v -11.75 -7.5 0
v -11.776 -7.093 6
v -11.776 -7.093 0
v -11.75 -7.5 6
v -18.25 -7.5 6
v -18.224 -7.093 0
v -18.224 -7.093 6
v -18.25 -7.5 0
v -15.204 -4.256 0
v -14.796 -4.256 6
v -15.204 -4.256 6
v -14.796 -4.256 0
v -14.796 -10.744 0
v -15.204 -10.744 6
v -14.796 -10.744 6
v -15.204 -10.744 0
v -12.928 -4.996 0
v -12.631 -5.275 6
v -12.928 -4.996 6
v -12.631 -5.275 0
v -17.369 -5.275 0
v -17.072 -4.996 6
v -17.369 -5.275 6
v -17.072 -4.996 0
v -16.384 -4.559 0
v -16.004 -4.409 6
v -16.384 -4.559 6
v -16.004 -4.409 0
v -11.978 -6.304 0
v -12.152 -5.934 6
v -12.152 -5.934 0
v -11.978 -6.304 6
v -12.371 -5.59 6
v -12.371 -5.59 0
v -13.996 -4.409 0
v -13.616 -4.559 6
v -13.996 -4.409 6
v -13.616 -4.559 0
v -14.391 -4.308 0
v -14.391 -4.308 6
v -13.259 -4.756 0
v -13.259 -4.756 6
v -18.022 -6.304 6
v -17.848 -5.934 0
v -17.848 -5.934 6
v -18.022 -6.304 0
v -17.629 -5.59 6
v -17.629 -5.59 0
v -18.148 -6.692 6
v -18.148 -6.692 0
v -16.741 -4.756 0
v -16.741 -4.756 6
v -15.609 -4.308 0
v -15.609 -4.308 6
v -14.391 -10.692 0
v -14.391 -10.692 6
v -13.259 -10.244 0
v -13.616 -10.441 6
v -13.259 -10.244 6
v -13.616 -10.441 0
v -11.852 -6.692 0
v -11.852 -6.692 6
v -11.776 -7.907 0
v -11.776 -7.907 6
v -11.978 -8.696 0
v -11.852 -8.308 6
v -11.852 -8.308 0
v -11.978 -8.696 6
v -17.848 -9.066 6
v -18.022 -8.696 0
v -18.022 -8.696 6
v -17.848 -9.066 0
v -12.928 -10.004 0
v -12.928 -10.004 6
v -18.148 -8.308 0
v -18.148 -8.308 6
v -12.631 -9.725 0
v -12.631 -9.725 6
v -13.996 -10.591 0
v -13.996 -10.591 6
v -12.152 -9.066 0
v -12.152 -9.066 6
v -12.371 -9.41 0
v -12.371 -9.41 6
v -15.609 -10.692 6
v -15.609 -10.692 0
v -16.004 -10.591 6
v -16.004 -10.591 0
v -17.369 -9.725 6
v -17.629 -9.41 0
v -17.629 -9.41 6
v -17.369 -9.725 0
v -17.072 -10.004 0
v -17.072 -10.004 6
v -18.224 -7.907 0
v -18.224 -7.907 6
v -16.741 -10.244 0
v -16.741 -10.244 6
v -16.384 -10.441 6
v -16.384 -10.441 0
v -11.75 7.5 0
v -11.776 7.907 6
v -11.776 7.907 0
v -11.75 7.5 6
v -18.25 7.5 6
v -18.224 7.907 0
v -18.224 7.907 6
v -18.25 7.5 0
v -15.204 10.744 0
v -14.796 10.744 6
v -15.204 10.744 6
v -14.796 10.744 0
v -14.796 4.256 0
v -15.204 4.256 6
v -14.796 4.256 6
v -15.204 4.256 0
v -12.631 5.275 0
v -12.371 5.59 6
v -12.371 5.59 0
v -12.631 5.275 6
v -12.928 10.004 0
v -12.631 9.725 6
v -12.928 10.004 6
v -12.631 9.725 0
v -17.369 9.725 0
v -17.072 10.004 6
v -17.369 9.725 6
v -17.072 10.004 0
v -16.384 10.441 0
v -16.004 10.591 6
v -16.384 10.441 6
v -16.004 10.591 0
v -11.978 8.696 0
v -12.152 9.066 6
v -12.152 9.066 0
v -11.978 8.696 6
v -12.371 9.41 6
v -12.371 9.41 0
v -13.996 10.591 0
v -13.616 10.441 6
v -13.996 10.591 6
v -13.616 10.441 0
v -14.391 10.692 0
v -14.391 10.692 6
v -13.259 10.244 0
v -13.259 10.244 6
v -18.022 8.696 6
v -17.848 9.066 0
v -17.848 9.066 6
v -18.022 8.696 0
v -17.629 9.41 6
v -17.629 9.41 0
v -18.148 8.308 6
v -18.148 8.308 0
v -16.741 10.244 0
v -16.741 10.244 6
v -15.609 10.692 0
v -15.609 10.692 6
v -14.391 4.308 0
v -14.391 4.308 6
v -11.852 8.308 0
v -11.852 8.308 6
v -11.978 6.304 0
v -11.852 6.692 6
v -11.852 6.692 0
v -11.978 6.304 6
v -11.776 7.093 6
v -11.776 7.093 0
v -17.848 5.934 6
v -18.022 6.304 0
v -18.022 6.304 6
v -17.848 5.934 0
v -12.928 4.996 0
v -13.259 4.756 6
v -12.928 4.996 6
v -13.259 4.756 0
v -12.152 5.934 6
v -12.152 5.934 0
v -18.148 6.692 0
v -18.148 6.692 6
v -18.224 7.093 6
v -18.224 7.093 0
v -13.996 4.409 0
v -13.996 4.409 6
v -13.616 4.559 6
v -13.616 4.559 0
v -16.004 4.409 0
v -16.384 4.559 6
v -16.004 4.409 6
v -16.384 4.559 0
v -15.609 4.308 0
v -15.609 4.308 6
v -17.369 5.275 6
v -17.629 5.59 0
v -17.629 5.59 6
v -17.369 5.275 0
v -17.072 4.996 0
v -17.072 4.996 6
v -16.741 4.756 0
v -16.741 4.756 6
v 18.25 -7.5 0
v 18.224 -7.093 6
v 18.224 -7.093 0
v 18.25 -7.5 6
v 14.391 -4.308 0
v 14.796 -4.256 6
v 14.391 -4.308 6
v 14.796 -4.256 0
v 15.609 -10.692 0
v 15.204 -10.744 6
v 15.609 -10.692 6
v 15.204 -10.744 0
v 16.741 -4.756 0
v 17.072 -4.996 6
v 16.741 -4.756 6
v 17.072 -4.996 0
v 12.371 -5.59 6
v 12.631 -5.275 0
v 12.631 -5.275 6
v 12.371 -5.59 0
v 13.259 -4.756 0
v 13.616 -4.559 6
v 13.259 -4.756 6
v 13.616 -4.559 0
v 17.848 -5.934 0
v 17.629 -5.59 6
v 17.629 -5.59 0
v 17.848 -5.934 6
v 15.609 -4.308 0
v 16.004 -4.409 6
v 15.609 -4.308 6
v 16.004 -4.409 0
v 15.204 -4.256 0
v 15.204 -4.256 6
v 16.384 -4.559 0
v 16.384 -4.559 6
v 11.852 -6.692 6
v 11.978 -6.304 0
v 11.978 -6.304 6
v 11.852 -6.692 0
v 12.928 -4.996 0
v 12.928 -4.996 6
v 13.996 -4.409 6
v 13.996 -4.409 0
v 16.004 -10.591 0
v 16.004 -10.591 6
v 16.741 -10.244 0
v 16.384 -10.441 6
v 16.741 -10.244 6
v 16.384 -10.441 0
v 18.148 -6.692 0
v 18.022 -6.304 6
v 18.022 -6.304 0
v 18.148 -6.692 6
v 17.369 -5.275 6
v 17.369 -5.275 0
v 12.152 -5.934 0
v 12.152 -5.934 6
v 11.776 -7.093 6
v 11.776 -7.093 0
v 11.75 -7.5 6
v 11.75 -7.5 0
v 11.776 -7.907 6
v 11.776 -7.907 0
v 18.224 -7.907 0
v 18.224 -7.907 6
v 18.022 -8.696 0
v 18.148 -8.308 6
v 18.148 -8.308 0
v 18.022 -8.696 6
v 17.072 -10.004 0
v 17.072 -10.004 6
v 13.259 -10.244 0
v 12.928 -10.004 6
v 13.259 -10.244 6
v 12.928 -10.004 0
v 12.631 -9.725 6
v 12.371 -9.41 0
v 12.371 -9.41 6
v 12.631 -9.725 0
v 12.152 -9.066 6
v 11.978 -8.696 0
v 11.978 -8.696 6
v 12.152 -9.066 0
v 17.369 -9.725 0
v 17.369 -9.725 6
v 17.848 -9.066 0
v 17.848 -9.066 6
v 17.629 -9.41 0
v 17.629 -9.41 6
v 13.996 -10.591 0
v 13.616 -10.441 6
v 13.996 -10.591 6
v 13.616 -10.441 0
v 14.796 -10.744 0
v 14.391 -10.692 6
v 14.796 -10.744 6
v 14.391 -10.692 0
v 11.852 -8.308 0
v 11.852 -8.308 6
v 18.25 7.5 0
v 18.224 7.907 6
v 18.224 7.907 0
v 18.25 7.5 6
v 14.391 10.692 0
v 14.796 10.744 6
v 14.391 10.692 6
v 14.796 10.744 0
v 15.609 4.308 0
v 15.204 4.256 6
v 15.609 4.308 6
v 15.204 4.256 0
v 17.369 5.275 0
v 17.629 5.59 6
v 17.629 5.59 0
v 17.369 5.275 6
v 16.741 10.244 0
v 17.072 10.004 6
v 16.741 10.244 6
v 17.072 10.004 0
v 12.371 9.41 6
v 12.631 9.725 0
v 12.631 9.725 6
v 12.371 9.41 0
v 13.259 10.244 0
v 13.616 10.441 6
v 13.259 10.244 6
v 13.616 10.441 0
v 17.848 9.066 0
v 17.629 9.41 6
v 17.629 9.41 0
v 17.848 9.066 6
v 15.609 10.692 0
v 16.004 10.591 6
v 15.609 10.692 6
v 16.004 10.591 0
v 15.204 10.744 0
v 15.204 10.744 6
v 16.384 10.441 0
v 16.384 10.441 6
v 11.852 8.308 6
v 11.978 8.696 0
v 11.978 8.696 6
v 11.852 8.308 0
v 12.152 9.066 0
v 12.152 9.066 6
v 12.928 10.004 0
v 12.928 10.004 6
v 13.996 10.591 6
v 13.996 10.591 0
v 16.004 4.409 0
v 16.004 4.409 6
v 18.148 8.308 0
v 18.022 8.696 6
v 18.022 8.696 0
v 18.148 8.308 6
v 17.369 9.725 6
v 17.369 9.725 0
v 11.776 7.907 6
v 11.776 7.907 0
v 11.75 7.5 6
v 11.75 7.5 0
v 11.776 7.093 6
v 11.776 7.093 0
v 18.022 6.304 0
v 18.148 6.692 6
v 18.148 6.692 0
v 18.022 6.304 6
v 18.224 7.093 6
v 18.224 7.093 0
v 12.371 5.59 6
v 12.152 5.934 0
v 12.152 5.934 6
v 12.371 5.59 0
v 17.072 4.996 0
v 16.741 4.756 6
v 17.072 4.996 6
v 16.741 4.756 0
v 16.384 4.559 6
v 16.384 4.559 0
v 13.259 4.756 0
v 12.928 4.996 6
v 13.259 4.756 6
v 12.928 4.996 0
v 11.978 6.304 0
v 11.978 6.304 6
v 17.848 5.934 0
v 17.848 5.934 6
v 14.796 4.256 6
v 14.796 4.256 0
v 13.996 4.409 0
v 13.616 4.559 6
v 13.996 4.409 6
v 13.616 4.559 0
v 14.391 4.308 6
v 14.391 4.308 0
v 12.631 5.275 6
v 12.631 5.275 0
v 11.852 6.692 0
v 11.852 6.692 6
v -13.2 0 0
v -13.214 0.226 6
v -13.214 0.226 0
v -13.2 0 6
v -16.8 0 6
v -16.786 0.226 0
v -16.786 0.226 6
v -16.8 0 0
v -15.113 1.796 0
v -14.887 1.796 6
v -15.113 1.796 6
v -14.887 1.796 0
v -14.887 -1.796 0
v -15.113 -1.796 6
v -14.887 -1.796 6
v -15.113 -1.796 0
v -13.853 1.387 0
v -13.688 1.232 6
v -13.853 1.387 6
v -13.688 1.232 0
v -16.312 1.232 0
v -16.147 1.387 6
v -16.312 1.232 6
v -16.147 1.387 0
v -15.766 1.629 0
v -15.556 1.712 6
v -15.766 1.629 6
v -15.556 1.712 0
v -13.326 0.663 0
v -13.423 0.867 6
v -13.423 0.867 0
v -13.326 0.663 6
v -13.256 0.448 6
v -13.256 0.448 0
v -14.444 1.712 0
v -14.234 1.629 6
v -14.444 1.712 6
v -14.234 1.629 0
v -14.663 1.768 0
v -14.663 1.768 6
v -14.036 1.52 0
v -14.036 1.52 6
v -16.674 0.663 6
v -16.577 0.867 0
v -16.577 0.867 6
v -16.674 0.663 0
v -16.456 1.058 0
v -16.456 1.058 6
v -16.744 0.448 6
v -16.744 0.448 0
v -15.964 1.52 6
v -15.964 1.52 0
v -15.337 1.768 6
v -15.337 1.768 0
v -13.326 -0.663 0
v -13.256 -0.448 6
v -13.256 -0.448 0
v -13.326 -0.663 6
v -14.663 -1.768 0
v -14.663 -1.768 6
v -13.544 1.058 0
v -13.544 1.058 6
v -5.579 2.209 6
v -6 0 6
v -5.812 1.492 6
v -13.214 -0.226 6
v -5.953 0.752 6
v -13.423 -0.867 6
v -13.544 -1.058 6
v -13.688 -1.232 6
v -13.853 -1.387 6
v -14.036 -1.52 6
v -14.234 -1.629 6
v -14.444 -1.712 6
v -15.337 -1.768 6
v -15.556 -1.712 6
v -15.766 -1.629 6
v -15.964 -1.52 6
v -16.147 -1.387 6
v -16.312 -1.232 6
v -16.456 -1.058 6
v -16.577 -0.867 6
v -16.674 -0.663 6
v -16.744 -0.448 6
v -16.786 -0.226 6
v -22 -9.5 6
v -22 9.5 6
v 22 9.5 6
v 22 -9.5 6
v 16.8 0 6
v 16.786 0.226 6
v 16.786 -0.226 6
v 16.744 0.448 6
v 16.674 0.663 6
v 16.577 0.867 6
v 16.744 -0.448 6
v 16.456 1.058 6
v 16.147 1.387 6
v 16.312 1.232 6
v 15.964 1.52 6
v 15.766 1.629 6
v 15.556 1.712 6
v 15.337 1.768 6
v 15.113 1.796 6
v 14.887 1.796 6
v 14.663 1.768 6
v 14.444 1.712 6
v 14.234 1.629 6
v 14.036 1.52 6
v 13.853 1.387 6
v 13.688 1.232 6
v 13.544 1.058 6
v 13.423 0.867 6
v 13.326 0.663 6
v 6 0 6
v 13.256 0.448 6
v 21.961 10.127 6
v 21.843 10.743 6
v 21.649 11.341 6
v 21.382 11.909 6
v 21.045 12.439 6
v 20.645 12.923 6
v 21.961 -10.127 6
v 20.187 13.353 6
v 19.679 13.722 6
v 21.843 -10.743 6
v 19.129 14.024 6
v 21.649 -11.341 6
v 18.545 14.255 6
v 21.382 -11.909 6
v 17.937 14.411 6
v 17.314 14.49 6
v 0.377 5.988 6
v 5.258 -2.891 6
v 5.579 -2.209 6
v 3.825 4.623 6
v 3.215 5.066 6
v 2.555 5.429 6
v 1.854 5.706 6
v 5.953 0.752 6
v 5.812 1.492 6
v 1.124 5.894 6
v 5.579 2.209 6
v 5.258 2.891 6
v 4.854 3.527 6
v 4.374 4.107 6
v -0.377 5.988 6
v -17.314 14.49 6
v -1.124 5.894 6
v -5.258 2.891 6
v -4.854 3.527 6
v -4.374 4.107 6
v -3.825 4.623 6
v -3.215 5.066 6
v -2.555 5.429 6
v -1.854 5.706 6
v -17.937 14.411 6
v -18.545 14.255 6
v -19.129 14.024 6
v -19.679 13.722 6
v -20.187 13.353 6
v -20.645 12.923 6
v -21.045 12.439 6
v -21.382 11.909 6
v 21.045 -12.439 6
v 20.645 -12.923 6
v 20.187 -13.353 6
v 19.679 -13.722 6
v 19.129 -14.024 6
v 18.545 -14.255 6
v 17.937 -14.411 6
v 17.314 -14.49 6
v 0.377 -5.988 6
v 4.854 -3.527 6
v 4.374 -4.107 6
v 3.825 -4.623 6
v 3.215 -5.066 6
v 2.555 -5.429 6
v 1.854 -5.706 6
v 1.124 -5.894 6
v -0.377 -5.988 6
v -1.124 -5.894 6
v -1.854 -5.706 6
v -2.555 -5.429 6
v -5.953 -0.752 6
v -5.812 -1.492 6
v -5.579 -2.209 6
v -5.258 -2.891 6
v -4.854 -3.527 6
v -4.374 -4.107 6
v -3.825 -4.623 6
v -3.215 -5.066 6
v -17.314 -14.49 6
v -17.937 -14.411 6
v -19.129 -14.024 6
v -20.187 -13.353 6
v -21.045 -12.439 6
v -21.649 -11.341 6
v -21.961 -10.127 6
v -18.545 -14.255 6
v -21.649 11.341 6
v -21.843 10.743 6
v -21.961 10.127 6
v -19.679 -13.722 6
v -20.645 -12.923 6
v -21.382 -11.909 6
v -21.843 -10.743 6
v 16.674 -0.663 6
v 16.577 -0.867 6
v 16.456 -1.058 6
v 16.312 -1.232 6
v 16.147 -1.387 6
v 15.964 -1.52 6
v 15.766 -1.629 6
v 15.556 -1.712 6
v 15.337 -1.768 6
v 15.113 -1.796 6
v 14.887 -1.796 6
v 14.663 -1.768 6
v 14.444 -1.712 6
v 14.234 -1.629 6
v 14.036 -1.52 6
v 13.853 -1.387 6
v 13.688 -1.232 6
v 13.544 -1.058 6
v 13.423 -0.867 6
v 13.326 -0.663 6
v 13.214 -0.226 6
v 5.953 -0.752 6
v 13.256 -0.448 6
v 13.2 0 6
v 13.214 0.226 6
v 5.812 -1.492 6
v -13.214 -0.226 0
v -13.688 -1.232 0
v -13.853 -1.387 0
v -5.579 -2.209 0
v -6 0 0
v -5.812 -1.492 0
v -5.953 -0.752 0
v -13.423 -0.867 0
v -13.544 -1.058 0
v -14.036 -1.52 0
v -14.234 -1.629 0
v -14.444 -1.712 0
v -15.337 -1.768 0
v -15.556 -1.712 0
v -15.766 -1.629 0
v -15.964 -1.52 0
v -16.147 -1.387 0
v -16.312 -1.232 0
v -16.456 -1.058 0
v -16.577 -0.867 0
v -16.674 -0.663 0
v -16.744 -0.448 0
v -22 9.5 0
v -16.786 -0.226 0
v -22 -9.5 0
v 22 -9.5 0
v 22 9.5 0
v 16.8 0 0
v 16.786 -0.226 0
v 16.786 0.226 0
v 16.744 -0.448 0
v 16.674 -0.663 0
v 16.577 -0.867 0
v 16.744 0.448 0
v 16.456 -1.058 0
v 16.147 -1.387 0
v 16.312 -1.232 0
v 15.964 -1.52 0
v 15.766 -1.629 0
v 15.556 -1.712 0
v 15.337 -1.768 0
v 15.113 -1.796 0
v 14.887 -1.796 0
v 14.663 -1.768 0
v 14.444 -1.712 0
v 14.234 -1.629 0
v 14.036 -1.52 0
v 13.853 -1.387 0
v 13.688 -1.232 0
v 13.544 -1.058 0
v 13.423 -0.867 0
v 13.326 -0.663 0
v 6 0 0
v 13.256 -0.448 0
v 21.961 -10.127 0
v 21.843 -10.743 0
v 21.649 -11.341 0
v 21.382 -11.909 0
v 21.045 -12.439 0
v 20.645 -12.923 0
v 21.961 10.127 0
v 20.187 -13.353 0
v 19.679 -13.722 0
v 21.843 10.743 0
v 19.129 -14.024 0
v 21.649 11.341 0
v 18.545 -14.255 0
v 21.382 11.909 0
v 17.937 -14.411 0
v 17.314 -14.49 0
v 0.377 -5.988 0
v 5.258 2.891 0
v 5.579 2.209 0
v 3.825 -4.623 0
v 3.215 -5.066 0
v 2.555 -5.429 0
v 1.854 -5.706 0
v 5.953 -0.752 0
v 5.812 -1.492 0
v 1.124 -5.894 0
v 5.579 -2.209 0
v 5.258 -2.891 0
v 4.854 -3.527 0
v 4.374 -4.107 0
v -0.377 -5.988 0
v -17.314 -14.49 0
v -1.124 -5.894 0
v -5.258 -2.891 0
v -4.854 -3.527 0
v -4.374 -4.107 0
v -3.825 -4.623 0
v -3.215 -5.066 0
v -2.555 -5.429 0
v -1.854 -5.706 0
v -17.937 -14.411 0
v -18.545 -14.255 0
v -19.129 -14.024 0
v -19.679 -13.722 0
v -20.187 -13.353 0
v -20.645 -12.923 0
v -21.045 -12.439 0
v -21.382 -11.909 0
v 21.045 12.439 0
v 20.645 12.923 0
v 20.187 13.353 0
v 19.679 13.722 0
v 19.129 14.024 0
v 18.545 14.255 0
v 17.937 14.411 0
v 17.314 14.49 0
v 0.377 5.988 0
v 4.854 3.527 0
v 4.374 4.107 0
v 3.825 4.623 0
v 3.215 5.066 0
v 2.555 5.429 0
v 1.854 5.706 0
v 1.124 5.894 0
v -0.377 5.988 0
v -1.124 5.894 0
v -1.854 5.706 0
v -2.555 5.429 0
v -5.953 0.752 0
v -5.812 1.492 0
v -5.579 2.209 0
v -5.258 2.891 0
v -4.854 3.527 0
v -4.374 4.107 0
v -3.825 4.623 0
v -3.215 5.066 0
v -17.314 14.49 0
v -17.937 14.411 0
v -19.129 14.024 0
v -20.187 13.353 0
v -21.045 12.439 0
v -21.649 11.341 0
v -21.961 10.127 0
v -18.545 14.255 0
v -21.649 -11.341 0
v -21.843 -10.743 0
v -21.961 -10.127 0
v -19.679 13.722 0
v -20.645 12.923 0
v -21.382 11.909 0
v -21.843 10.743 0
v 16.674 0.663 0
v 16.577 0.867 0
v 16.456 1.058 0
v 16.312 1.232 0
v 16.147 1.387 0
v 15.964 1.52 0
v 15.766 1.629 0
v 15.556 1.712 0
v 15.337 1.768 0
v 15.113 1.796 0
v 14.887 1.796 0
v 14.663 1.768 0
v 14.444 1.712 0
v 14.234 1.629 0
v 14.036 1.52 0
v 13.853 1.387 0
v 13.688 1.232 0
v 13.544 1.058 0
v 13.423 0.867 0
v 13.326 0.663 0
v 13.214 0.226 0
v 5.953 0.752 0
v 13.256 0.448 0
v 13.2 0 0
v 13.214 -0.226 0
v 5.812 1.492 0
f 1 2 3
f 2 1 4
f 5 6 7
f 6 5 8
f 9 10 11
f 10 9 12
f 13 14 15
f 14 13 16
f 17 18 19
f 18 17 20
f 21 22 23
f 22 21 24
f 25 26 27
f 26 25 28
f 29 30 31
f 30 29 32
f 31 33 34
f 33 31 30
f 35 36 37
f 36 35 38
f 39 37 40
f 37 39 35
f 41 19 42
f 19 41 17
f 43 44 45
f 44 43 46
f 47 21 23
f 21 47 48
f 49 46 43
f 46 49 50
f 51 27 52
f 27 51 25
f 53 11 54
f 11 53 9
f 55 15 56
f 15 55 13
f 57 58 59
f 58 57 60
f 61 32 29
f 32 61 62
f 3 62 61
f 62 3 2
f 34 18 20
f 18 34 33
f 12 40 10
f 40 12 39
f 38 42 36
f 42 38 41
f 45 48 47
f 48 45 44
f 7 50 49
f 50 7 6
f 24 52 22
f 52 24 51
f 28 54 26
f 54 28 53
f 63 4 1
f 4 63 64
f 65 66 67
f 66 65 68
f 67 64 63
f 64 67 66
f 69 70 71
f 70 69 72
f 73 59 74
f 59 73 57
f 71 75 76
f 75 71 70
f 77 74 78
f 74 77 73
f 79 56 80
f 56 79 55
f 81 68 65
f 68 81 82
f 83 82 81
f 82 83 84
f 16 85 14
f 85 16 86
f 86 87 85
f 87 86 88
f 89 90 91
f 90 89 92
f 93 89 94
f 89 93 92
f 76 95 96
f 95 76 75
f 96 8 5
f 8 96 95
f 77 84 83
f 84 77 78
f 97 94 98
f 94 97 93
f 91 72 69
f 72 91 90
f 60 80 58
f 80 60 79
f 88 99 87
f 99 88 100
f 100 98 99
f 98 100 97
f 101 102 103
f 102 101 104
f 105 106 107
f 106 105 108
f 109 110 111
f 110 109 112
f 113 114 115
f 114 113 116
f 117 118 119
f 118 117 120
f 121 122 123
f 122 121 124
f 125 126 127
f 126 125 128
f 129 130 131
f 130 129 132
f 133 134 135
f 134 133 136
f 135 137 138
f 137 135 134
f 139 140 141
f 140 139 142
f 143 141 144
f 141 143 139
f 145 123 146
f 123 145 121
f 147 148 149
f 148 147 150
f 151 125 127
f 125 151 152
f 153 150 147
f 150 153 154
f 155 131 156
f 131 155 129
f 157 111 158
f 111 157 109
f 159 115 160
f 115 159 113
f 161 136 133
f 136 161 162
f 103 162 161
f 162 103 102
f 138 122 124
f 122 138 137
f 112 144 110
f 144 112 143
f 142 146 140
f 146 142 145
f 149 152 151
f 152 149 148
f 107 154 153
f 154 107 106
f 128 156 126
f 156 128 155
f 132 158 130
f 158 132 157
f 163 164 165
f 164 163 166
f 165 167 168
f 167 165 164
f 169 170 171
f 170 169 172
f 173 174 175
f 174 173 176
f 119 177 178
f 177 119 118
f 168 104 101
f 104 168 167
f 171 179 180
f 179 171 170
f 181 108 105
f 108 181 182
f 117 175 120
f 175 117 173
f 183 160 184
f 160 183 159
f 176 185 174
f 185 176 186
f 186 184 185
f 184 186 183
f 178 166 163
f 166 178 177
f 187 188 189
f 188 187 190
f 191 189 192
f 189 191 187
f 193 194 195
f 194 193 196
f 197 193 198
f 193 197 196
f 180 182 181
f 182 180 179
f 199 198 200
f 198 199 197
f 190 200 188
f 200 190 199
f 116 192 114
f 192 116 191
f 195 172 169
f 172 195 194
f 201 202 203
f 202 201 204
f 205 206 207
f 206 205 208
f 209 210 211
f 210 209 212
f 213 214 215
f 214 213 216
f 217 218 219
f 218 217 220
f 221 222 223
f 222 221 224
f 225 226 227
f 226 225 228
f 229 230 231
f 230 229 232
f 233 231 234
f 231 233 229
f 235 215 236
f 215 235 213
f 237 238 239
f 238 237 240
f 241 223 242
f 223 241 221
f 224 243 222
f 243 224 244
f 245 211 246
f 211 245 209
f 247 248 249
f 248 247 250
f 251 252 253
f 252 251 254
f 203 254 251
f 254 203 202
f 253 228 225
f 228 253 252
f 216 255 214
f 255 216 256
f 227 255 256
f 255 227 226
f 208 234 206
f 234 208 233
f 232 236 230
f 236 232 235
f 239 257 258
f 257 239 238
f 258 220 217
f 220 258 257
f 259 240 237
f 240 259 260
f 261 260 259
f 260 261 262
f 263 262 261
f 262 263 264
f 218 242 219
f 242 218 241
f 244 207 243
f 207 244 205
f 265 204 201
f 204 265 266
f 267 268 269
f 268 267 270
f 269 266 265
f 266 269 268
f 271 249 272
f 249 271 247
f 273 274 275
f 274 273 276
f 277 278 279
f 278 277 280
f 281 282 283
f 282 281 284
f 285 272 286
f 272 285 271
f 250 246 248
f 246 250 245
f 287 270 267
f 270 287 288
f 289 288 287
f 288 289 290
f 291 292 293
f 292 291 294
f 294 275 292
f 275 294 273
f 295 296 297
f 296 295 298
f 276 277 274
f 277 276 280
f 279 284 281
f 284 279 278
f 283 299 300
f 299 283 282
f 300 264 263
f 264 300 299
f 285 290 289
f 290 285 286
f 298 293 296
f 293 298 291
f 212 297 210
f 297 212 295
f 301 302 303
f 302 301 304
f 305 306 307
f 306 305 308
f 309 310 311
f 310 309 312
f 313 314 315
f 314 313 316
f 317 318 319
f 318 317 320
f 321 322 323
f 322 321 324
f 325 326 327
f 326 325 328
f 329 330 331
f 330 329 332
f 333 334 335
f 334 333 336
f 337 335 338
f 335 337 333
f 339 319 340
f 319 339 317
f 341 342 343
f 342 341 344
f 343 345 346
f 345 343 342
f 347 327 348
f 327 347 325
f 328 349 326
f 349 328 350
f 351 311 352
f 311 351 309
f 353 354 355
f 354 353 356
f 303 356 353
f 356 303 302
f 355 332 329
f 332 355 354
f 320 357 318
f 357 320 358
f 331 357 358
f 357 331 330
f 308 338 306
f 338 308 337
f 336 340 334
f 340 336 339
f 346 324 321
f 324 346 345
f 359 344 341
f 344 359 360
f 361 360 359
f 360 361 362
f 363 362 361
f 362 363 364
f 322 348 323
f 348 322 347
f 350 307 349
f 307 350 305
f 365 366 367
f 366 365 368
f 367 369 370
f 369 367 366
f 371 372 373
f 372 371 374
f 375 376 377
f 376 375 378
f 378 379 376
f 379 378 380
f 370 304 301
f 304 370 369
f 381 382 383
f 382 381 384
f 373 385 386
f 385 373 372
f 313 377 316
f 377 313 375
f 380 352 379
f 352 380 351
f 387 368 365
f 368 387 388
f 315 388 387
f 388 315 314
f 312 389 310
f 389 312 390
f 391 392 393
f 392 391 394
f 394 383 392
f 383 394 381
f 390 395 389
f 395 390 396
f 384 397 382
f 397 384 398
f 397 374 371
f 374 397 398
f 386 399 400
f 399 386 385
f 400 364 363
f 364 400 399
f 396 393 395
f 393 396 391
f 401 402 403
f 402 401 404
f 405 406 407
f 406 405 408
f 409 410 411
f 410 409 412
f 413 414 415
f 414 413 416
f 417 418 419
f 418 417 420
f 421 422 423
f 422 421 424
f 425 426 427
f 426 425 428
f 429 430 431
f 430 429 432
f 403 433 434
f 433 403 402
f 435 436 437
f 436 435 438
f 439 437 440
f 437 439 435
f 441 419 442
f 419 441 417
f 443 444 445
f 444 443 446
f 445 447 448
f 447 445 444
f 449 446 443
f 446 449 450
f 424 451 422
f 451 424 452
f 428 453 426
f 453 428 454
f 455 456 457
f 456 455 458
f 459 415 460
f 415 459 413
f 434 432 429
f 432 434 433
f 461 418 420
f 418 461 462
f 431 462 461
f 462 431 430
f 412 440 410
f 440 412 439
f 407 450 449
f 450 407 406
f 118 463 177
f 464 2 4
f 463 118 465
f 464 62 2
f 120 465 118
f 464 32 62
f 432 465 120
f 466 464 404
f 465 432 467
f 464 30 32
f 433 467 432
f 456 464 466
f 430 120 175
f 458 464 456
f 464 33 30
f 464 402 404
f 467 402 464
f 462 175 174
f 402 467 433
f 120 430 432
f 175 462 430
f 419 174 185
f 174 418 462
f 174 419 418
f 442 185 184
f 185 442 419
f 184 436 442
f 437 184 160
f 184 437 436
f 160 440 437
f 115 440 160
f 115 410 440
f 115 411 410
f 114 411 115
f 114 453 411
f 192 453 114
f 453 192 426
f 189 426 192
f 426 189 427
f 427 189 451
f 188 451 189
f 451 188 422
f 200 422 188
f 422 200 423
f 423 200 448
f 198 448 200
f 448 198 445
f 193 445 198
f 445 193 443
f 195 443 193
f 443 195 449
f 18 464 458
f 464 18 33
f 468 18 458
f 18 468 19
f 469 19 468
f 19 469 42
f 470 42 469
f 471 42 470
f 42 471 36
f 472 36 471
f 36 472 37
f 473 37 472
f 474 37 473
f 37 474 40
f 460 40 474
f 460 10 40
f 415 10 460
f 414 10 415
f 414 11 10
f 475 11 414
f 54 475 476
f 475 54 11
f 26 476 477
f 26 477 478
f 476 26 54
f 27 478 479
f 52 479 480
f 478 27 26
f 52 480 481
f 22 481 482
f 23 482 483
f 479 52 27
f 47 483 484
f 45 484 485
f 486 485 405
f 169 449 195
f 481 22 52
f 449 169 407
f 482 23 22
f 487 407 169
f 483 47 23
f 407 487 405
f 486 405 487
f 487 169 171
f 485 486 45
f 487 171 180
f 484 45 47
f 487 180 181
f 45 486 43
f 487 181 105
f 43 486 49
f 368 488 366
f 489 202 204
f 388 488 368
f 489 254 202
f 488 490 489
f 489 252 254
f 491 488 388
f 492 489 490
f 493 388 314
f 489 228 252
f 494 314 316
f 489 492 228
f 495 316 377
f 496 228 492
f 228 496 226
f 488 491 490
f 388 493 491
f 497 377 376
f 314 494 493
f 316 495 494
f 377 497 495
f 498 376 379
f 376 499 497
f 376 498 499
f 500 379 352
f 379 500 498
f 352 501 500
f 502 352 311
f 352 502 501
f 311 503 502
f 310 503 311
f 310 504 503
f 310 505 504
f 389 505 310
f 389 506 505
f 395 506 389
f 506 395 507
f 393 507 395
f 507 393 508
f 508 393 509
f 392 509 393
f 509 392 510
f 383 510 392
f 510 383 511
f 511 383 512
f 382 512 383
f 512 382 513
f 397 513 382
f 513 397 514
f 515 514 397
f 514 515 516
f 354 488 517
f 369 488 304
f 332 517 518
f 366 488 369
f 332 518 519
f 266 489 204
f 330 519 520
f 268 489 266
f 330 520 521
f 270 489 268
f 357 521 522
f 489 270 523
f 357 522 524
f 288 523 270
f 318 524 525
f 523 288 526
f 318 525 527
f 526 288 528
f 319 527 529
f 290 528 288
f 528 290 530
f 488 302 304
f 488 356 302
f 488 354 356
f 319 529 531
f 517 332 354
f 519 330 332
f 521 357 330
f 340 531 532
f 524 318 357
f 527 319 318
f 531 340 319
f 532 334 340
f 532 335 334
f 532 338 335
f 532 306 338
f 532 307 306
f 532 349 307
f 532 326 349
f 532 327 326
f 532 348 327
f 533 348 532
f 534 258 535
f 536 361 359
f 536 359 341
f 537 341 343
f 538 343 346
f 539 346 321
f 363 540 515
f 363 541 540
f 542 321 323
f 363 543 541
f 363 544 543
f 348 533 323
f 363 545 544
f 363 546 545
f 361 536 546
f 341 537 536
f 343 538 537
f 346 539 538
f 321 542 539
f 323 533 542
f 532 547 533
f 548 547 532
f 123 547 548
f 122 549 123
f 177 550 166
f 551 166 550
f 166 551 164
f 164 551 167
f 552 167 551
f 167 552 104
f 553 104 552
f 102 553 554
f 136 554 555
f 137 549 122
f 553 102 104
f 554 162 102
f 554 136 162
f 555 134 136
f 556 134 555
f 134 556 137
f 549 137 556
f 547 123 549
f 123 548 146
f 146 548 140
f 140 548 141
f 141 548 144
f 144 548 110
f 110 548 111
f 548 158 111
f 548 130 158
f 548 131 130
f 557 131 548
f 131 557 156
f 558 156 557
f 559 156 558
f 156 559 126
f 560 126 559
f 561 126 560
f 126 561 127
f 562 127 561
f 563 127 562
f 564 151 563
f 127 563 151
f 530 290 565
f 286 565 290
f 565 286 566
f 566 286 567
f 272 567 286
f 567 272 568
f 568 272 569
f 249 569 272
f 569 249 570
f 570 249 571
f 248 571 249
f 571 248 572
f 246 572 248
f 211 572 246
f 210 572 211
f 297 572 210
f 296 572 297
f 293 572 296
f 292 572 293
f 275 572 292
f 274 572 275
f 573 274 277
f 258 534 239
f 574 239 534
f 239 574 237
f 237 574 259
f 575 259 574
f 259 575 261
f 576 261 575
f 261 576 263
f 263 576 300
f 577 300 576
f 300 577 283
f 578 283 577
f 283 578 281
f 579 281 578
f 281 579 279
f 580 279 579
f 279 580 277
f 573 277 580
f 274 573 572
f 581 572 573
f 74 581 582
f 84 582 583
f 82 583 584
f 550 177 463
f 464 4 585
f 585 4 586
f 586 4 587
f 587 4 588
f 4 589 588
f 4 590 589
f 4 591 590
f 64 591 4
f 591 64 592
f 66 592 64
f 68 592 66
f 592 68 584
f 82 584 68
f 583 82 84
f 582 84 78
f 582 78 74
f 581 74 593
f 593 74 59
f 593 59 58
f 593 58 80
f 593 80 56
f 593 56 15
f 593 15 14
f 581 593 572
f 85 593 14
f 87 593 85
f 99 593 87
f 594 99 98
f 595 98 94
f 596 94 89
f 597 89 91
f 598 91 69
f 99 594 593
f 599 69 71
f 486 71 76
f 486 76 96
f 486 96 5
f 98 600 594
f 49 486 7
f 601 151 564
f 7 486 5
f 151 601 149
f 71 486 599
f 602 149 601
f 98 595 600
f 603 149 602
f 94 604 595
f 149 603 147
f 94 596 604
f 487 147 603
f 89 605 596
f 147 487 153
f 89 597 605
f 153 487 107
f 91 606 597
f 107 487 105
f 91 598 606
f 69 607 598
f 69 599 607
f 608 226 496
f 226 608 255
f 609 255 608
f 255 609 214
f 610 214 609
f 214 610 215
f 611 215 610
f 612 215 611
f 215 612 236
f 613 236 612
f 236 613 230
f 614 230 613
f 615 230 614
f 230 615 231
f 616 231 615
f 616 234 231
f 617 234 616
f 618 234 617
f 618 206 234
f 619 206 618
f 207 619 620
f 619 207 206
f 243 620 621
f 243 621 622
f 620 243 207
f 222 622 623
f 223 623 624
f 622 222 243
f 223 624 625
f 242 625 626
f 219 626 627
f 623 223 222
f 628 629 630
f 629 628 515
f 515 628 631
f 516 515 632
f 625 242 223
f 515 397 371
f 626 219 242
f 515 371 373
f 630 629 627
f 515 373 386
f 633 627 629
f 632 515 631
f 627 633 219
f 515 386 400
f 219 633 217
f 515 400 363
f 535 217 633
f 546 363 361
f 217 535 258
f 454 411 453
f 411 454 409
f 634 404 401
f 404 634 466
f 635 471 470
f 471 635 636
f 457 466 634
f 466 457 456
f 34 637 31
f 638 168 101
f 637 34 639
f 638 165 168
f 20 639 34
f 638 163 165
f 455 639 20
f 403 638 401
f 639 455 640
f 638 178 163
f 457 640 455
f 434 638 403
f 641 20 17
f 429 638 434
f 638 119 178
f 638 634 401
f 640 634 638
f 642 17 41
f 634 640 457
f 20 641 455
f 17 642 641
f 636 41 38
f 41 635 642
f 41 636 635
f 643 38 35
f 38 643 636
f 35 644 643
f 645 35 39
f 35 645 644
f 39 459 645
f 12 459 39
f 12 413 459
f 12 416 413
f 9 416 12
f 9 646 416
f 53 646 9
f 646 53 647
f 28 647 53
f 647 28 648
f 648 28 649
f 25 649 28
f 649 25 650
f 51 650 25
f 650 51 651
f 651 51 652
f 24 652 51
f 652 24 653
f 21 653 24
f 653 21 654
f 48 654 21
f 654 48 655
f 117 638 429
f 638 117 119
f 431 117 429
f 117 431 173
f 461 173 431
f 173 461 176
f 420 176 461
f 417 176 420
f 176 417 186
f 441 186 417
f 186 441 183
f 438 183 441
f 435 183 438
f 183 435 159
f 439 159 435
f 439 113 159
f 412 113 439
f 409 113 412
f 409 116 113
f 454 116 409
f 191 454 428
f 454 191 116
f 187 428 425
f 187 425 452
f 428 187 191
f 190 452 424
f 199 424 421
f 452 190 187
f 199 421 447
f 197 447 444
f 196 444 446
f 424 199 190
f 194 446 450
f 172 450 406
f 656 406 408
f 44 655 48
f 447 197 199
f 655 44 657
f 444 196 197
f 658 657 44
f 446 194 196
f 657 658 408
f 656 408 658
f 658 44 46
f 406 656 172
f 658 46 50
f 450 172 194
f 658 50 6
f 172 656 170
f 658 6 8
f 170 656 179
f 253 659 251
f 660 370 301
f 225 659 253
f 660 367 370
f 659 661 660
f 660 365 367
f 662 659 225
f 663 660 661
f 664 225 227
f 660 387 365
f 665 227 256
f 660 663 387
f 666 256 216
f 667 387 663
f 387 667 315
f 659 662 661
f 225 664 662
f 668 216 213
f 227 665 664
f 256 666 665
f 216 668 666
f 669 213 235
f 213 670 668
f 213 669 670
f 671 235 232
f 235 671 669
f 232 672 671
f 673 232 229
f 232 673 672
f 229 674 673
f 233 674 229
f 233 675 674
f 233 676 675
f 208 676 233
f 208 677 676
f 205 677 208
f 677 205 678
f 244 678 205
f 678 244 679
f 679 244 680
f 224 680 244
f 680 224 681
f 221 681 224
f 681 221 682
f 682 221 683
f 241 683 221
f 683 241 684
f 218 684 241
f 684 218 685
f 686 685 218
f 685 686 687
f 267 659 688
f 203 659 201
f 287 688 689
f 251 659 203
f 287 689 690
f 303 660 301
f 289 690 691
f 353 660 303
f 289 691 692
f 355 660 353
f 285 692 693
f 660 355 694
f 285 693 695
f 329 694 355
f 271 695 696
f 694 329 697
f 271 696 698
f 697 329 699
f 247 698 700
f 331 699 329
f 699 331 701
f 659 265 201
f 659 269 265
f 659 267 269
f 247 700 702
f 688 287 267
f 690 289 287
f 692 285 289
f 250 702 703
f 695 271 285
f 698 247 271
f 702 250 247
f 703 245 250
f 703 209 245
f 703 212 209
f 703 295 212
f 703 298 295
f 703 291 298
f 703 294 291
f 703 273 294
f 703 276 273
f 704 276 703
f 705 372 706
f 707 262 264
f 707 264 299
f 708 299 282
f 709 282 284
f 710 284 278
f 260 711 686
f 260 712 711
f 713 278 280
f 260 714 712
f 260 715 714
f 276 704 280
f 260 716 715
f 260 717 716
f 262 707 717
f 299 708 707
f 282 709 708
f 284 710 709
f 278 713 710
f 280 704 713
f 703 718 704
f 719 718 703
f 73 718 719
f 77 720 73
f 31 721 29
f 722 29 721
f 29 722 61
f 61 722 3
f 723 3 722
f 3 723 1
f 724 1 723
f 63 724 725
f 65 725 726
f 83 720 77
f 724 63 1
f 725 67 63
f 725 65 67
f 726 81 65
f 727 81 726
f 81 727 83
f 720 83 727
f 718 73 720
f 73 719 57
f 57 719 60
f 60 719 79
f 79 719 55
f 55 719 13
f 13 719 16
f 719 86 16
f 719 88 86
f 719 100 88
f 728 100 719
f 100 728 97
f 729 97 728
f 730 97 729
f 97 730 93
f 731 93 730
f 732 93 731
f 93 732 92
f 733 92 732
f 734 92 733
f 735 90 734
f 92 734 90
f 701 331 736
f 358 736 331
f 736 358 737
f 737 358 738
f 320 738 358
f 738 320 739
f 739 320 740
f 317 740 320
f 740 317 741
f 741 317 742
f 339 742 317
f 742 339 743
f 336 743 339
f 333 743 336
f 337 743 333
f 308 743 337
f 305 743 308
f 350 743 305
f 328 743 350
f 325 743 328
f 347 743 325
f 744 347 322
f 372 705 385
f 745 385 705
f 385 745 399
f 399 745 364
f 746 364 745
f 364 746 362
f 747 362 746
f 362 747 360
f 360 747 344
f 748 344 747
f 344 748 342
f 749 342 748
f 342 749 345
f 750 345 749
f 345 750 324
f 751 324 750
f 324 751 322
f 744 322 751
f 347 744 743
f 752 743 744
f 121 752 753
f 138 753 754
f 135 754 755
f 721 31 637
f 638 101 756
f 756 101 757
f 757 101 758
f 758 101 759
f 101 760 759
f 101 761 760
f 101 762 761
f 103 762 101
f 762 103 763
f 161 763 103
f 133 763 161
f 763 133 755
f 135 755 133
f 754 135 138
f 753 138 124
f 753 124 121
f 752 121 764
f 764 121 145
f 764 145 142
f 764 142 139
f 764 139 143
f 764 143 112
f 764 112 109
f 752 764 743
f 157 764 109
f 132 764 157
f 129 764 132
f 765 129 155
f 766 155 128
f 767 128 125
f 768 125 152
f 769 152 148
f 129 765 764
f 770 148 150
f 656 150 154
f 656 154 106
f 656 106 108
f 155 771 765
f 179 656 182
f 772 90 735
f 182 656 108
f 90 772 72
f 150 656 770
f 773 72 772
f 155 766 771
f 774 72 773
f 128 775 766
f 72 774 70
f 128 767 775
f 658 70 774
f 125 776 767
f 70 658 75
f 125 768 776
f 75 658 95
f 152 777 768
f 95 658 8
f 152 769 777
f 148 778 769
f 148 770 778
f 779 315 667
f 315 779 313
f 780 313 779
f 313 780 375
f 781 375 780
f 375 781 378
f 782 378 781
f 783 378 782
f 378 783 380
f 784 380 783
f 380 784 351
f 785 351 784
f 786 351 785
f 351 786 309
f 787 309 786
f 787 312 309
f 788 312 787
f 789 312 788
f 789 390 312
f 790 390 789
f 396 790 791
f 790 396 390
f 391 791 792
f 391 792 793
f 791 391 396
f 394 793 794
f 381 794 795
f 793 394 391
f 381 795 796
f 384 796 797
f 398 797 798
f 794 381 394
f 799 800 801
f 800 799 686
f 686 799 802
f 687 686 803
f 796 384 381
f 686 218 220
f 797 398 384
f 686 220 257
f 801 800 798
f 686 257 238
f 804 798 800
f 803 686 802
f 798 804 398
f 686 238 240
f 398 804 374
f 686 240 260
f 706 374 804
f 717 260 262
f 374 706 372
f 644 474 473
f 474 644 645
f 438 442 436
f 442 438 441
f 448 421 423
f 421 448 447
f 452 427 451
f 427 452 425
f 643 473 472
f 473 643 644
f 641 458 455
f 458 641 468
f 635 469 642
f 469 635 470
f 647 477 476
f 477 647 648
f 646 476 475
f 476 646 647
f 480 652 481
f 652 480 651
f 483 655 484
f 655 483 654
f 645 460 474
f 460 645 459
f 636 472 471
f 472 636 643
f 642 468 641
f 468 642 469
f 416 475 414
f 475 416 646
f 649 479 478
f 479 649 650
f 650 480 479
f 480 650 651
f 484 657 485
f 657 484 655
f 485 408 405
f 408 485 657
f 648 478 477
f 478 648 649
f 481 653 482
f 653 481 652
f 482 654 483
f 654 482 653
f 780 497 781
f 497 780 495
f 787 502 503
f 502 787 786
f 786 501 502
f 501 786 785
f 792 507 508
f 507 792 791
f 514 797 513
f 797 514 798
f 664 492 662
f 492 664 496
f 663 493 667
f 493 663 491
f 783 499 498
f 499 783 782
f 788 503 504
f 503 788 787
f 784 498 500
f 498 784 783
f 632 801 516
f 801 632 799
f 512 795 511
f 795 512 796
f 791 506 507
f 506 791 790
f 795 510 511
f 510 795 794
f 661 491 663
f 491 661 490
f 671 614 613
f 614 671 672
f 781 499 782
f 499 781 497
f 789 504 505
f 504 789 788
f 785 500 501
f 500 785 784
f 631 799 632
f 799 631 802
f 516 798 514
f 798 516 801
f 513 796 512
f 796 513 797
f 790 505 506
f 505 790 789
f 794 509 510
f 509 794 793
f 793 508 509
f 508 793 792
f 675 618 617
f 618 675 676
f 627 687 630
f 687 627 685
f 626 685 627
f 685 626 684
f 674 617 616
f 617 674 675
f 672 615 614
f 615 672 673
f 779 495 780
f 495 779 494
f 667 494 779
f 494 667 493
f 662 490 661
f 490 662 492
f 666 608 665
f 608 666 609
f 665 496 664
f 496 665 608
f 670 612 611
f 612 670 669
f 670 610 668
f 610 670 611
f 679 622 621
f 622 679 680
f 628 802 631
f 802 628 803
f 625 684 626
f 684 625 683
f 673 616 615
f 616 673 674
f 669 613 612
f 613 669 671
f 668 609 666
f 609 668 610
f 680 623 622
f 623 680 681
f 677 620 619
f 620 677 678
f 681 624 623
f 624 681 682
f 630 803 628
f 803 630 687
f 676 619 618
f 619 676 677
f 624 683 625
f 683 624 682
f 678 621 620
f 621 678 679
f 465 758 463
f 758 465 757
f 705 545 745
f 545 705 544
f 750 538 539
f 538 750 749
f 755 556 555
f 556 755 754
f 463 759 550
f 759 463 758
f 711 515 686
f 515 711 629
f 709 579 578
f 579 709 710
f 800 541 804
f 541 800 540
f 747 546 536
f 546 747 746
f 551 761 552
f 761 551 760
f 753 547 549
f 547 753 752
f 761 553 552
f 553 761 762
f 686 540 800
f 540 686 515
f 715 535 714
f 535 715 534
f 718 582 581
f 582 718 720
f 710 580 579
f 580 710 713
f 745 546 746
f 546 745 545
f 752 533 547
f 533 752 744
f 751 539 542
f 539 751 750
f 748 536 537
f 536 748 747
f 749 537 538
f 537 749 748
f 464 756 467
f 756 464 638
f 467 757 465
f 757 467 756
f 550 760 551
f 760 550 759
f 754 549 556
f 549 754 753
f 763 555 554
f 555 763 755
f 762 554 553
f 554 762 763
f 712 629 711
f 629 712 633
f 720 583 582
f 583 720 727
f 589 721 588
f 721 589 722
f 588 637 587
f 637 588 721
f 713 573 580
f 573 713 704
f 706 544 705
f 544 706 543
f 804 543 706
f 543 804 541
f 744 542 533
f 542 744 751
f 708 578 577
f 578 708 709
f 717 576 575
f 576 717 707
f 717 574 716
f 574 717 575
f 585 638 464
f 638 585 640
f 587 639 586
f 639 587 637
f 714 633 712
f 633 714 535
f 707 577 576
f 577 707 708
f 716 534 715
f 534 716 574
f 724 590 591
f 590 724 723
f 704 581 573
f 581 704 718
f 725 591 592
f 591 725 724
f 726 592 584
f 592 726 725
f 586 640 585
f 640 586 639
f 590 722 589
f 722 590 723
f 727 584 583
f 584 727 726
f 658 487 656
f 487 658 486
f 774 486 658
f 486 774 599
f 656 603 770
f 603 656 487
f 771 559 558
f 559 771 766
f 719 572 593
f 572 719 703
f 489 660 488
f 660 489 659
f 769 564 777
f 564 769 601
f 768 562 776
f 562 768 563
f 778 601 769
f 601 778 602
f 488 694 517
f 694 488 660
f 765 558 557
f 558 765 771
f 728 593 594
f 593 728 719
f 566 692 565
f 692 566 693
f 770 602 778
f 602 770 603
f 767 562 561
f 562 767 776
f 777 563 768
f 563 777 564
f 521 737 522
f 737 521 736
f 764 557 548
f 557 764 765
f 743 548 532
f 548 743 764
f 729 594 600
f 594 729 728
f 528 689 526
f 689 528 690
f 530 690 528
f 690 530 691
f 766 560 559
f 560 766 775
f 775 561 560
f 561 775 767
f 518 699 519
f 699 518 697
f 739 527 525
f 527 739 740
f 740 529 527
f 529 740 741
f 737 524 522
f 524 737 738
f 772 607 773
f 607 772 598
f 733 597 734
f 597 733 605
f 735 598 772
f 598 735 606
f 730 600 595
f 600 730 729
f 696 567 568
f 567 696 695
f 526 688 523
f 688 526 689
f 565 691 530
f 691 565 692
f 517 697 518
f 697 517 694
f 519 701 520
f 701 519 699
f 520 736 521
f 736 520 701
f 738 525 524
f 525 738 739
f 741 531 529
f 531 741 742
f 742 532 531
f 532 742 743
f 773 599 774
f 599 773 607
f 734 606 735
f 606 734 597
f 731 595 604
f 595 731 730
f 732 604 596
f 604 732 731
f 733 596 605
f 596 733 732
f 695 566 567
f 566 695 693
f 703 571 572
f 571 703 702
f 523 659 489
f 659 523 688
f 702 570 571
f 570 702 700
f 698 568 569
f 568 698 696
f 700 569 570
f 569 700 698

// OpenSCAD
$fn = 50;


difference() {
	union() {
		hull() {
			translate(v = [-17.0000000000, 9.5000000000, 0]) {
				cylinder(h = 6, r = 5);
			}
			translate(v = [17.0000000000, 9.5000000000, 0]) {
				cylinder(h = 6, r = 5);
			}
			translate(v = [-17.0000000000, -9.5000000000, 0]) {
				cylinder(h = 6, r = 5);
			}
			translate(v = [17.0000000000, -9.5000000000, 0]) {
				cylinder(h = 6, r = 5);
			}
		}
	}
	union() {
		#translate(v = [-15.0000000000, -7.5000000000, 0]) {
			cylinder(h = 6, r = 3.2500000000);
		}
		#translate(v = [-15.0000000000, 7.5000000000, 0]) {
			cylinder(h = 6, r = 3.2500000000);
		}
		#translate(v = [15.0000000000, -7.5000000000, 0]) {
			cylinder(h = 6, r = 3.2500000000);
		}
		#translate(v = [15.0000000000, 7.5000000000, 0]) {
			cylinder(h = 6, r = 3.2500000000);
		}
		#translate(v = [-15.0000000000, -7.5000000000, -100.0000000000]) {
			cylinder(h = 200, r = 3.2500000000);
		}
		#translate(v = [-15.0000000000, 7.5000000000, -100.0000000000]) {
			cylinder(h = 200, r = 3.2500000000);
		}
		#translate(v = [15.0000000000, -7.5000000000, -100.0000000000]) {
			cylinder(h = 200, r = 3.2500000000);
		}
		#translate(v = [15.0000000000, 7.5000000000, -100.0000000000]) {
			cylinder(h = 200, r = 3.2500000000);
		}
		#translate(v = [-15.0000000000, -7.5000000000, 0]) {
			cylinder(h = 6, r = 1.8000000000);
		}
		#translate(v = [-15.0000000000, 0.0000000000, 0]) {
			cylinder(h = 6, r = 1.8000000000);
		}
		#translate(v = [-15.0000000000, 7.5000000000, 0]) {
			cylinder(h = 6, r = 1.8000000000);
		}
		#translate(v = [15.0000000000, -7.5000000000, 0]) {
			cylinder(h = 6, r = 1.8000000000);
		}
		#translate(v = [15.0000000000, 0.0000000000, 0]) {
			cylinder(h = 6, r = 1.8000000000);
		}
		#translate(v = [15.0000000000, 7.5000000000, 0]) {
			cylinder(h = 6, r = 1.8000000000);
		}
		#translate(v = [-15.0000000000, -7.5000000000, 0]) {
			cylinder(h = 6, r = 1.8000000000);
		}
		#translate(v = [-15.0000000000, 0.0000000000, 0]) {
			cylinder(h = 6, r = 1.8000000000);
		}
		#translate(v = [-15.0000000000, 7.5000000000, 0]) {
			cylinder(h = 6, r = 1.8000000000);
		}
		#translate(v = [15.0000000000, -7.5000000000, 0]) {
			cylinder(h = 6, r = 1.8000000000);
		}
		#translate(v = [15.0000000000, 0.0000000000, 0]) {
			cylinder(h = 6, r = 1.8000000000);
		}
		#translate(v = [15.0000000000, 7.5000000000, 0]) {
			cylinder(h = 6, r = 1.8000000000);
		}
		#translate(v = [-15.0000000000, -7.5000000000, 0]) {
			cylinder(h = 6, r = 1.8000000000);
		}
		#translate(v = [-15.0000000000, 0.0000000000, 0]) {
			cylinder(h = 6, r = 1.8000000000);
		}
		#translate(v = [-15.0000000000, 7.5000000000, 0]) {
			cylinder(h = 6, r = 1.8000000000);
		}
		#translate(v = [15.0000000000, -7.5000000000, 0]) {
			cylinder(h = 6, r = 1.8000000000);
		}
		#translate(v = [15.0000000000, 0.0000000000, 0]) {
			cylinder(h = 6, r = 1.8000000000);
		}
		#translate(v = [15.0000000000, 7.5000000000, 0]) {
			cylinder(h = 6, r = 1.8000000000);
		}
		#cylinder(h = 6, r = 6.0000000000);
	}
}
